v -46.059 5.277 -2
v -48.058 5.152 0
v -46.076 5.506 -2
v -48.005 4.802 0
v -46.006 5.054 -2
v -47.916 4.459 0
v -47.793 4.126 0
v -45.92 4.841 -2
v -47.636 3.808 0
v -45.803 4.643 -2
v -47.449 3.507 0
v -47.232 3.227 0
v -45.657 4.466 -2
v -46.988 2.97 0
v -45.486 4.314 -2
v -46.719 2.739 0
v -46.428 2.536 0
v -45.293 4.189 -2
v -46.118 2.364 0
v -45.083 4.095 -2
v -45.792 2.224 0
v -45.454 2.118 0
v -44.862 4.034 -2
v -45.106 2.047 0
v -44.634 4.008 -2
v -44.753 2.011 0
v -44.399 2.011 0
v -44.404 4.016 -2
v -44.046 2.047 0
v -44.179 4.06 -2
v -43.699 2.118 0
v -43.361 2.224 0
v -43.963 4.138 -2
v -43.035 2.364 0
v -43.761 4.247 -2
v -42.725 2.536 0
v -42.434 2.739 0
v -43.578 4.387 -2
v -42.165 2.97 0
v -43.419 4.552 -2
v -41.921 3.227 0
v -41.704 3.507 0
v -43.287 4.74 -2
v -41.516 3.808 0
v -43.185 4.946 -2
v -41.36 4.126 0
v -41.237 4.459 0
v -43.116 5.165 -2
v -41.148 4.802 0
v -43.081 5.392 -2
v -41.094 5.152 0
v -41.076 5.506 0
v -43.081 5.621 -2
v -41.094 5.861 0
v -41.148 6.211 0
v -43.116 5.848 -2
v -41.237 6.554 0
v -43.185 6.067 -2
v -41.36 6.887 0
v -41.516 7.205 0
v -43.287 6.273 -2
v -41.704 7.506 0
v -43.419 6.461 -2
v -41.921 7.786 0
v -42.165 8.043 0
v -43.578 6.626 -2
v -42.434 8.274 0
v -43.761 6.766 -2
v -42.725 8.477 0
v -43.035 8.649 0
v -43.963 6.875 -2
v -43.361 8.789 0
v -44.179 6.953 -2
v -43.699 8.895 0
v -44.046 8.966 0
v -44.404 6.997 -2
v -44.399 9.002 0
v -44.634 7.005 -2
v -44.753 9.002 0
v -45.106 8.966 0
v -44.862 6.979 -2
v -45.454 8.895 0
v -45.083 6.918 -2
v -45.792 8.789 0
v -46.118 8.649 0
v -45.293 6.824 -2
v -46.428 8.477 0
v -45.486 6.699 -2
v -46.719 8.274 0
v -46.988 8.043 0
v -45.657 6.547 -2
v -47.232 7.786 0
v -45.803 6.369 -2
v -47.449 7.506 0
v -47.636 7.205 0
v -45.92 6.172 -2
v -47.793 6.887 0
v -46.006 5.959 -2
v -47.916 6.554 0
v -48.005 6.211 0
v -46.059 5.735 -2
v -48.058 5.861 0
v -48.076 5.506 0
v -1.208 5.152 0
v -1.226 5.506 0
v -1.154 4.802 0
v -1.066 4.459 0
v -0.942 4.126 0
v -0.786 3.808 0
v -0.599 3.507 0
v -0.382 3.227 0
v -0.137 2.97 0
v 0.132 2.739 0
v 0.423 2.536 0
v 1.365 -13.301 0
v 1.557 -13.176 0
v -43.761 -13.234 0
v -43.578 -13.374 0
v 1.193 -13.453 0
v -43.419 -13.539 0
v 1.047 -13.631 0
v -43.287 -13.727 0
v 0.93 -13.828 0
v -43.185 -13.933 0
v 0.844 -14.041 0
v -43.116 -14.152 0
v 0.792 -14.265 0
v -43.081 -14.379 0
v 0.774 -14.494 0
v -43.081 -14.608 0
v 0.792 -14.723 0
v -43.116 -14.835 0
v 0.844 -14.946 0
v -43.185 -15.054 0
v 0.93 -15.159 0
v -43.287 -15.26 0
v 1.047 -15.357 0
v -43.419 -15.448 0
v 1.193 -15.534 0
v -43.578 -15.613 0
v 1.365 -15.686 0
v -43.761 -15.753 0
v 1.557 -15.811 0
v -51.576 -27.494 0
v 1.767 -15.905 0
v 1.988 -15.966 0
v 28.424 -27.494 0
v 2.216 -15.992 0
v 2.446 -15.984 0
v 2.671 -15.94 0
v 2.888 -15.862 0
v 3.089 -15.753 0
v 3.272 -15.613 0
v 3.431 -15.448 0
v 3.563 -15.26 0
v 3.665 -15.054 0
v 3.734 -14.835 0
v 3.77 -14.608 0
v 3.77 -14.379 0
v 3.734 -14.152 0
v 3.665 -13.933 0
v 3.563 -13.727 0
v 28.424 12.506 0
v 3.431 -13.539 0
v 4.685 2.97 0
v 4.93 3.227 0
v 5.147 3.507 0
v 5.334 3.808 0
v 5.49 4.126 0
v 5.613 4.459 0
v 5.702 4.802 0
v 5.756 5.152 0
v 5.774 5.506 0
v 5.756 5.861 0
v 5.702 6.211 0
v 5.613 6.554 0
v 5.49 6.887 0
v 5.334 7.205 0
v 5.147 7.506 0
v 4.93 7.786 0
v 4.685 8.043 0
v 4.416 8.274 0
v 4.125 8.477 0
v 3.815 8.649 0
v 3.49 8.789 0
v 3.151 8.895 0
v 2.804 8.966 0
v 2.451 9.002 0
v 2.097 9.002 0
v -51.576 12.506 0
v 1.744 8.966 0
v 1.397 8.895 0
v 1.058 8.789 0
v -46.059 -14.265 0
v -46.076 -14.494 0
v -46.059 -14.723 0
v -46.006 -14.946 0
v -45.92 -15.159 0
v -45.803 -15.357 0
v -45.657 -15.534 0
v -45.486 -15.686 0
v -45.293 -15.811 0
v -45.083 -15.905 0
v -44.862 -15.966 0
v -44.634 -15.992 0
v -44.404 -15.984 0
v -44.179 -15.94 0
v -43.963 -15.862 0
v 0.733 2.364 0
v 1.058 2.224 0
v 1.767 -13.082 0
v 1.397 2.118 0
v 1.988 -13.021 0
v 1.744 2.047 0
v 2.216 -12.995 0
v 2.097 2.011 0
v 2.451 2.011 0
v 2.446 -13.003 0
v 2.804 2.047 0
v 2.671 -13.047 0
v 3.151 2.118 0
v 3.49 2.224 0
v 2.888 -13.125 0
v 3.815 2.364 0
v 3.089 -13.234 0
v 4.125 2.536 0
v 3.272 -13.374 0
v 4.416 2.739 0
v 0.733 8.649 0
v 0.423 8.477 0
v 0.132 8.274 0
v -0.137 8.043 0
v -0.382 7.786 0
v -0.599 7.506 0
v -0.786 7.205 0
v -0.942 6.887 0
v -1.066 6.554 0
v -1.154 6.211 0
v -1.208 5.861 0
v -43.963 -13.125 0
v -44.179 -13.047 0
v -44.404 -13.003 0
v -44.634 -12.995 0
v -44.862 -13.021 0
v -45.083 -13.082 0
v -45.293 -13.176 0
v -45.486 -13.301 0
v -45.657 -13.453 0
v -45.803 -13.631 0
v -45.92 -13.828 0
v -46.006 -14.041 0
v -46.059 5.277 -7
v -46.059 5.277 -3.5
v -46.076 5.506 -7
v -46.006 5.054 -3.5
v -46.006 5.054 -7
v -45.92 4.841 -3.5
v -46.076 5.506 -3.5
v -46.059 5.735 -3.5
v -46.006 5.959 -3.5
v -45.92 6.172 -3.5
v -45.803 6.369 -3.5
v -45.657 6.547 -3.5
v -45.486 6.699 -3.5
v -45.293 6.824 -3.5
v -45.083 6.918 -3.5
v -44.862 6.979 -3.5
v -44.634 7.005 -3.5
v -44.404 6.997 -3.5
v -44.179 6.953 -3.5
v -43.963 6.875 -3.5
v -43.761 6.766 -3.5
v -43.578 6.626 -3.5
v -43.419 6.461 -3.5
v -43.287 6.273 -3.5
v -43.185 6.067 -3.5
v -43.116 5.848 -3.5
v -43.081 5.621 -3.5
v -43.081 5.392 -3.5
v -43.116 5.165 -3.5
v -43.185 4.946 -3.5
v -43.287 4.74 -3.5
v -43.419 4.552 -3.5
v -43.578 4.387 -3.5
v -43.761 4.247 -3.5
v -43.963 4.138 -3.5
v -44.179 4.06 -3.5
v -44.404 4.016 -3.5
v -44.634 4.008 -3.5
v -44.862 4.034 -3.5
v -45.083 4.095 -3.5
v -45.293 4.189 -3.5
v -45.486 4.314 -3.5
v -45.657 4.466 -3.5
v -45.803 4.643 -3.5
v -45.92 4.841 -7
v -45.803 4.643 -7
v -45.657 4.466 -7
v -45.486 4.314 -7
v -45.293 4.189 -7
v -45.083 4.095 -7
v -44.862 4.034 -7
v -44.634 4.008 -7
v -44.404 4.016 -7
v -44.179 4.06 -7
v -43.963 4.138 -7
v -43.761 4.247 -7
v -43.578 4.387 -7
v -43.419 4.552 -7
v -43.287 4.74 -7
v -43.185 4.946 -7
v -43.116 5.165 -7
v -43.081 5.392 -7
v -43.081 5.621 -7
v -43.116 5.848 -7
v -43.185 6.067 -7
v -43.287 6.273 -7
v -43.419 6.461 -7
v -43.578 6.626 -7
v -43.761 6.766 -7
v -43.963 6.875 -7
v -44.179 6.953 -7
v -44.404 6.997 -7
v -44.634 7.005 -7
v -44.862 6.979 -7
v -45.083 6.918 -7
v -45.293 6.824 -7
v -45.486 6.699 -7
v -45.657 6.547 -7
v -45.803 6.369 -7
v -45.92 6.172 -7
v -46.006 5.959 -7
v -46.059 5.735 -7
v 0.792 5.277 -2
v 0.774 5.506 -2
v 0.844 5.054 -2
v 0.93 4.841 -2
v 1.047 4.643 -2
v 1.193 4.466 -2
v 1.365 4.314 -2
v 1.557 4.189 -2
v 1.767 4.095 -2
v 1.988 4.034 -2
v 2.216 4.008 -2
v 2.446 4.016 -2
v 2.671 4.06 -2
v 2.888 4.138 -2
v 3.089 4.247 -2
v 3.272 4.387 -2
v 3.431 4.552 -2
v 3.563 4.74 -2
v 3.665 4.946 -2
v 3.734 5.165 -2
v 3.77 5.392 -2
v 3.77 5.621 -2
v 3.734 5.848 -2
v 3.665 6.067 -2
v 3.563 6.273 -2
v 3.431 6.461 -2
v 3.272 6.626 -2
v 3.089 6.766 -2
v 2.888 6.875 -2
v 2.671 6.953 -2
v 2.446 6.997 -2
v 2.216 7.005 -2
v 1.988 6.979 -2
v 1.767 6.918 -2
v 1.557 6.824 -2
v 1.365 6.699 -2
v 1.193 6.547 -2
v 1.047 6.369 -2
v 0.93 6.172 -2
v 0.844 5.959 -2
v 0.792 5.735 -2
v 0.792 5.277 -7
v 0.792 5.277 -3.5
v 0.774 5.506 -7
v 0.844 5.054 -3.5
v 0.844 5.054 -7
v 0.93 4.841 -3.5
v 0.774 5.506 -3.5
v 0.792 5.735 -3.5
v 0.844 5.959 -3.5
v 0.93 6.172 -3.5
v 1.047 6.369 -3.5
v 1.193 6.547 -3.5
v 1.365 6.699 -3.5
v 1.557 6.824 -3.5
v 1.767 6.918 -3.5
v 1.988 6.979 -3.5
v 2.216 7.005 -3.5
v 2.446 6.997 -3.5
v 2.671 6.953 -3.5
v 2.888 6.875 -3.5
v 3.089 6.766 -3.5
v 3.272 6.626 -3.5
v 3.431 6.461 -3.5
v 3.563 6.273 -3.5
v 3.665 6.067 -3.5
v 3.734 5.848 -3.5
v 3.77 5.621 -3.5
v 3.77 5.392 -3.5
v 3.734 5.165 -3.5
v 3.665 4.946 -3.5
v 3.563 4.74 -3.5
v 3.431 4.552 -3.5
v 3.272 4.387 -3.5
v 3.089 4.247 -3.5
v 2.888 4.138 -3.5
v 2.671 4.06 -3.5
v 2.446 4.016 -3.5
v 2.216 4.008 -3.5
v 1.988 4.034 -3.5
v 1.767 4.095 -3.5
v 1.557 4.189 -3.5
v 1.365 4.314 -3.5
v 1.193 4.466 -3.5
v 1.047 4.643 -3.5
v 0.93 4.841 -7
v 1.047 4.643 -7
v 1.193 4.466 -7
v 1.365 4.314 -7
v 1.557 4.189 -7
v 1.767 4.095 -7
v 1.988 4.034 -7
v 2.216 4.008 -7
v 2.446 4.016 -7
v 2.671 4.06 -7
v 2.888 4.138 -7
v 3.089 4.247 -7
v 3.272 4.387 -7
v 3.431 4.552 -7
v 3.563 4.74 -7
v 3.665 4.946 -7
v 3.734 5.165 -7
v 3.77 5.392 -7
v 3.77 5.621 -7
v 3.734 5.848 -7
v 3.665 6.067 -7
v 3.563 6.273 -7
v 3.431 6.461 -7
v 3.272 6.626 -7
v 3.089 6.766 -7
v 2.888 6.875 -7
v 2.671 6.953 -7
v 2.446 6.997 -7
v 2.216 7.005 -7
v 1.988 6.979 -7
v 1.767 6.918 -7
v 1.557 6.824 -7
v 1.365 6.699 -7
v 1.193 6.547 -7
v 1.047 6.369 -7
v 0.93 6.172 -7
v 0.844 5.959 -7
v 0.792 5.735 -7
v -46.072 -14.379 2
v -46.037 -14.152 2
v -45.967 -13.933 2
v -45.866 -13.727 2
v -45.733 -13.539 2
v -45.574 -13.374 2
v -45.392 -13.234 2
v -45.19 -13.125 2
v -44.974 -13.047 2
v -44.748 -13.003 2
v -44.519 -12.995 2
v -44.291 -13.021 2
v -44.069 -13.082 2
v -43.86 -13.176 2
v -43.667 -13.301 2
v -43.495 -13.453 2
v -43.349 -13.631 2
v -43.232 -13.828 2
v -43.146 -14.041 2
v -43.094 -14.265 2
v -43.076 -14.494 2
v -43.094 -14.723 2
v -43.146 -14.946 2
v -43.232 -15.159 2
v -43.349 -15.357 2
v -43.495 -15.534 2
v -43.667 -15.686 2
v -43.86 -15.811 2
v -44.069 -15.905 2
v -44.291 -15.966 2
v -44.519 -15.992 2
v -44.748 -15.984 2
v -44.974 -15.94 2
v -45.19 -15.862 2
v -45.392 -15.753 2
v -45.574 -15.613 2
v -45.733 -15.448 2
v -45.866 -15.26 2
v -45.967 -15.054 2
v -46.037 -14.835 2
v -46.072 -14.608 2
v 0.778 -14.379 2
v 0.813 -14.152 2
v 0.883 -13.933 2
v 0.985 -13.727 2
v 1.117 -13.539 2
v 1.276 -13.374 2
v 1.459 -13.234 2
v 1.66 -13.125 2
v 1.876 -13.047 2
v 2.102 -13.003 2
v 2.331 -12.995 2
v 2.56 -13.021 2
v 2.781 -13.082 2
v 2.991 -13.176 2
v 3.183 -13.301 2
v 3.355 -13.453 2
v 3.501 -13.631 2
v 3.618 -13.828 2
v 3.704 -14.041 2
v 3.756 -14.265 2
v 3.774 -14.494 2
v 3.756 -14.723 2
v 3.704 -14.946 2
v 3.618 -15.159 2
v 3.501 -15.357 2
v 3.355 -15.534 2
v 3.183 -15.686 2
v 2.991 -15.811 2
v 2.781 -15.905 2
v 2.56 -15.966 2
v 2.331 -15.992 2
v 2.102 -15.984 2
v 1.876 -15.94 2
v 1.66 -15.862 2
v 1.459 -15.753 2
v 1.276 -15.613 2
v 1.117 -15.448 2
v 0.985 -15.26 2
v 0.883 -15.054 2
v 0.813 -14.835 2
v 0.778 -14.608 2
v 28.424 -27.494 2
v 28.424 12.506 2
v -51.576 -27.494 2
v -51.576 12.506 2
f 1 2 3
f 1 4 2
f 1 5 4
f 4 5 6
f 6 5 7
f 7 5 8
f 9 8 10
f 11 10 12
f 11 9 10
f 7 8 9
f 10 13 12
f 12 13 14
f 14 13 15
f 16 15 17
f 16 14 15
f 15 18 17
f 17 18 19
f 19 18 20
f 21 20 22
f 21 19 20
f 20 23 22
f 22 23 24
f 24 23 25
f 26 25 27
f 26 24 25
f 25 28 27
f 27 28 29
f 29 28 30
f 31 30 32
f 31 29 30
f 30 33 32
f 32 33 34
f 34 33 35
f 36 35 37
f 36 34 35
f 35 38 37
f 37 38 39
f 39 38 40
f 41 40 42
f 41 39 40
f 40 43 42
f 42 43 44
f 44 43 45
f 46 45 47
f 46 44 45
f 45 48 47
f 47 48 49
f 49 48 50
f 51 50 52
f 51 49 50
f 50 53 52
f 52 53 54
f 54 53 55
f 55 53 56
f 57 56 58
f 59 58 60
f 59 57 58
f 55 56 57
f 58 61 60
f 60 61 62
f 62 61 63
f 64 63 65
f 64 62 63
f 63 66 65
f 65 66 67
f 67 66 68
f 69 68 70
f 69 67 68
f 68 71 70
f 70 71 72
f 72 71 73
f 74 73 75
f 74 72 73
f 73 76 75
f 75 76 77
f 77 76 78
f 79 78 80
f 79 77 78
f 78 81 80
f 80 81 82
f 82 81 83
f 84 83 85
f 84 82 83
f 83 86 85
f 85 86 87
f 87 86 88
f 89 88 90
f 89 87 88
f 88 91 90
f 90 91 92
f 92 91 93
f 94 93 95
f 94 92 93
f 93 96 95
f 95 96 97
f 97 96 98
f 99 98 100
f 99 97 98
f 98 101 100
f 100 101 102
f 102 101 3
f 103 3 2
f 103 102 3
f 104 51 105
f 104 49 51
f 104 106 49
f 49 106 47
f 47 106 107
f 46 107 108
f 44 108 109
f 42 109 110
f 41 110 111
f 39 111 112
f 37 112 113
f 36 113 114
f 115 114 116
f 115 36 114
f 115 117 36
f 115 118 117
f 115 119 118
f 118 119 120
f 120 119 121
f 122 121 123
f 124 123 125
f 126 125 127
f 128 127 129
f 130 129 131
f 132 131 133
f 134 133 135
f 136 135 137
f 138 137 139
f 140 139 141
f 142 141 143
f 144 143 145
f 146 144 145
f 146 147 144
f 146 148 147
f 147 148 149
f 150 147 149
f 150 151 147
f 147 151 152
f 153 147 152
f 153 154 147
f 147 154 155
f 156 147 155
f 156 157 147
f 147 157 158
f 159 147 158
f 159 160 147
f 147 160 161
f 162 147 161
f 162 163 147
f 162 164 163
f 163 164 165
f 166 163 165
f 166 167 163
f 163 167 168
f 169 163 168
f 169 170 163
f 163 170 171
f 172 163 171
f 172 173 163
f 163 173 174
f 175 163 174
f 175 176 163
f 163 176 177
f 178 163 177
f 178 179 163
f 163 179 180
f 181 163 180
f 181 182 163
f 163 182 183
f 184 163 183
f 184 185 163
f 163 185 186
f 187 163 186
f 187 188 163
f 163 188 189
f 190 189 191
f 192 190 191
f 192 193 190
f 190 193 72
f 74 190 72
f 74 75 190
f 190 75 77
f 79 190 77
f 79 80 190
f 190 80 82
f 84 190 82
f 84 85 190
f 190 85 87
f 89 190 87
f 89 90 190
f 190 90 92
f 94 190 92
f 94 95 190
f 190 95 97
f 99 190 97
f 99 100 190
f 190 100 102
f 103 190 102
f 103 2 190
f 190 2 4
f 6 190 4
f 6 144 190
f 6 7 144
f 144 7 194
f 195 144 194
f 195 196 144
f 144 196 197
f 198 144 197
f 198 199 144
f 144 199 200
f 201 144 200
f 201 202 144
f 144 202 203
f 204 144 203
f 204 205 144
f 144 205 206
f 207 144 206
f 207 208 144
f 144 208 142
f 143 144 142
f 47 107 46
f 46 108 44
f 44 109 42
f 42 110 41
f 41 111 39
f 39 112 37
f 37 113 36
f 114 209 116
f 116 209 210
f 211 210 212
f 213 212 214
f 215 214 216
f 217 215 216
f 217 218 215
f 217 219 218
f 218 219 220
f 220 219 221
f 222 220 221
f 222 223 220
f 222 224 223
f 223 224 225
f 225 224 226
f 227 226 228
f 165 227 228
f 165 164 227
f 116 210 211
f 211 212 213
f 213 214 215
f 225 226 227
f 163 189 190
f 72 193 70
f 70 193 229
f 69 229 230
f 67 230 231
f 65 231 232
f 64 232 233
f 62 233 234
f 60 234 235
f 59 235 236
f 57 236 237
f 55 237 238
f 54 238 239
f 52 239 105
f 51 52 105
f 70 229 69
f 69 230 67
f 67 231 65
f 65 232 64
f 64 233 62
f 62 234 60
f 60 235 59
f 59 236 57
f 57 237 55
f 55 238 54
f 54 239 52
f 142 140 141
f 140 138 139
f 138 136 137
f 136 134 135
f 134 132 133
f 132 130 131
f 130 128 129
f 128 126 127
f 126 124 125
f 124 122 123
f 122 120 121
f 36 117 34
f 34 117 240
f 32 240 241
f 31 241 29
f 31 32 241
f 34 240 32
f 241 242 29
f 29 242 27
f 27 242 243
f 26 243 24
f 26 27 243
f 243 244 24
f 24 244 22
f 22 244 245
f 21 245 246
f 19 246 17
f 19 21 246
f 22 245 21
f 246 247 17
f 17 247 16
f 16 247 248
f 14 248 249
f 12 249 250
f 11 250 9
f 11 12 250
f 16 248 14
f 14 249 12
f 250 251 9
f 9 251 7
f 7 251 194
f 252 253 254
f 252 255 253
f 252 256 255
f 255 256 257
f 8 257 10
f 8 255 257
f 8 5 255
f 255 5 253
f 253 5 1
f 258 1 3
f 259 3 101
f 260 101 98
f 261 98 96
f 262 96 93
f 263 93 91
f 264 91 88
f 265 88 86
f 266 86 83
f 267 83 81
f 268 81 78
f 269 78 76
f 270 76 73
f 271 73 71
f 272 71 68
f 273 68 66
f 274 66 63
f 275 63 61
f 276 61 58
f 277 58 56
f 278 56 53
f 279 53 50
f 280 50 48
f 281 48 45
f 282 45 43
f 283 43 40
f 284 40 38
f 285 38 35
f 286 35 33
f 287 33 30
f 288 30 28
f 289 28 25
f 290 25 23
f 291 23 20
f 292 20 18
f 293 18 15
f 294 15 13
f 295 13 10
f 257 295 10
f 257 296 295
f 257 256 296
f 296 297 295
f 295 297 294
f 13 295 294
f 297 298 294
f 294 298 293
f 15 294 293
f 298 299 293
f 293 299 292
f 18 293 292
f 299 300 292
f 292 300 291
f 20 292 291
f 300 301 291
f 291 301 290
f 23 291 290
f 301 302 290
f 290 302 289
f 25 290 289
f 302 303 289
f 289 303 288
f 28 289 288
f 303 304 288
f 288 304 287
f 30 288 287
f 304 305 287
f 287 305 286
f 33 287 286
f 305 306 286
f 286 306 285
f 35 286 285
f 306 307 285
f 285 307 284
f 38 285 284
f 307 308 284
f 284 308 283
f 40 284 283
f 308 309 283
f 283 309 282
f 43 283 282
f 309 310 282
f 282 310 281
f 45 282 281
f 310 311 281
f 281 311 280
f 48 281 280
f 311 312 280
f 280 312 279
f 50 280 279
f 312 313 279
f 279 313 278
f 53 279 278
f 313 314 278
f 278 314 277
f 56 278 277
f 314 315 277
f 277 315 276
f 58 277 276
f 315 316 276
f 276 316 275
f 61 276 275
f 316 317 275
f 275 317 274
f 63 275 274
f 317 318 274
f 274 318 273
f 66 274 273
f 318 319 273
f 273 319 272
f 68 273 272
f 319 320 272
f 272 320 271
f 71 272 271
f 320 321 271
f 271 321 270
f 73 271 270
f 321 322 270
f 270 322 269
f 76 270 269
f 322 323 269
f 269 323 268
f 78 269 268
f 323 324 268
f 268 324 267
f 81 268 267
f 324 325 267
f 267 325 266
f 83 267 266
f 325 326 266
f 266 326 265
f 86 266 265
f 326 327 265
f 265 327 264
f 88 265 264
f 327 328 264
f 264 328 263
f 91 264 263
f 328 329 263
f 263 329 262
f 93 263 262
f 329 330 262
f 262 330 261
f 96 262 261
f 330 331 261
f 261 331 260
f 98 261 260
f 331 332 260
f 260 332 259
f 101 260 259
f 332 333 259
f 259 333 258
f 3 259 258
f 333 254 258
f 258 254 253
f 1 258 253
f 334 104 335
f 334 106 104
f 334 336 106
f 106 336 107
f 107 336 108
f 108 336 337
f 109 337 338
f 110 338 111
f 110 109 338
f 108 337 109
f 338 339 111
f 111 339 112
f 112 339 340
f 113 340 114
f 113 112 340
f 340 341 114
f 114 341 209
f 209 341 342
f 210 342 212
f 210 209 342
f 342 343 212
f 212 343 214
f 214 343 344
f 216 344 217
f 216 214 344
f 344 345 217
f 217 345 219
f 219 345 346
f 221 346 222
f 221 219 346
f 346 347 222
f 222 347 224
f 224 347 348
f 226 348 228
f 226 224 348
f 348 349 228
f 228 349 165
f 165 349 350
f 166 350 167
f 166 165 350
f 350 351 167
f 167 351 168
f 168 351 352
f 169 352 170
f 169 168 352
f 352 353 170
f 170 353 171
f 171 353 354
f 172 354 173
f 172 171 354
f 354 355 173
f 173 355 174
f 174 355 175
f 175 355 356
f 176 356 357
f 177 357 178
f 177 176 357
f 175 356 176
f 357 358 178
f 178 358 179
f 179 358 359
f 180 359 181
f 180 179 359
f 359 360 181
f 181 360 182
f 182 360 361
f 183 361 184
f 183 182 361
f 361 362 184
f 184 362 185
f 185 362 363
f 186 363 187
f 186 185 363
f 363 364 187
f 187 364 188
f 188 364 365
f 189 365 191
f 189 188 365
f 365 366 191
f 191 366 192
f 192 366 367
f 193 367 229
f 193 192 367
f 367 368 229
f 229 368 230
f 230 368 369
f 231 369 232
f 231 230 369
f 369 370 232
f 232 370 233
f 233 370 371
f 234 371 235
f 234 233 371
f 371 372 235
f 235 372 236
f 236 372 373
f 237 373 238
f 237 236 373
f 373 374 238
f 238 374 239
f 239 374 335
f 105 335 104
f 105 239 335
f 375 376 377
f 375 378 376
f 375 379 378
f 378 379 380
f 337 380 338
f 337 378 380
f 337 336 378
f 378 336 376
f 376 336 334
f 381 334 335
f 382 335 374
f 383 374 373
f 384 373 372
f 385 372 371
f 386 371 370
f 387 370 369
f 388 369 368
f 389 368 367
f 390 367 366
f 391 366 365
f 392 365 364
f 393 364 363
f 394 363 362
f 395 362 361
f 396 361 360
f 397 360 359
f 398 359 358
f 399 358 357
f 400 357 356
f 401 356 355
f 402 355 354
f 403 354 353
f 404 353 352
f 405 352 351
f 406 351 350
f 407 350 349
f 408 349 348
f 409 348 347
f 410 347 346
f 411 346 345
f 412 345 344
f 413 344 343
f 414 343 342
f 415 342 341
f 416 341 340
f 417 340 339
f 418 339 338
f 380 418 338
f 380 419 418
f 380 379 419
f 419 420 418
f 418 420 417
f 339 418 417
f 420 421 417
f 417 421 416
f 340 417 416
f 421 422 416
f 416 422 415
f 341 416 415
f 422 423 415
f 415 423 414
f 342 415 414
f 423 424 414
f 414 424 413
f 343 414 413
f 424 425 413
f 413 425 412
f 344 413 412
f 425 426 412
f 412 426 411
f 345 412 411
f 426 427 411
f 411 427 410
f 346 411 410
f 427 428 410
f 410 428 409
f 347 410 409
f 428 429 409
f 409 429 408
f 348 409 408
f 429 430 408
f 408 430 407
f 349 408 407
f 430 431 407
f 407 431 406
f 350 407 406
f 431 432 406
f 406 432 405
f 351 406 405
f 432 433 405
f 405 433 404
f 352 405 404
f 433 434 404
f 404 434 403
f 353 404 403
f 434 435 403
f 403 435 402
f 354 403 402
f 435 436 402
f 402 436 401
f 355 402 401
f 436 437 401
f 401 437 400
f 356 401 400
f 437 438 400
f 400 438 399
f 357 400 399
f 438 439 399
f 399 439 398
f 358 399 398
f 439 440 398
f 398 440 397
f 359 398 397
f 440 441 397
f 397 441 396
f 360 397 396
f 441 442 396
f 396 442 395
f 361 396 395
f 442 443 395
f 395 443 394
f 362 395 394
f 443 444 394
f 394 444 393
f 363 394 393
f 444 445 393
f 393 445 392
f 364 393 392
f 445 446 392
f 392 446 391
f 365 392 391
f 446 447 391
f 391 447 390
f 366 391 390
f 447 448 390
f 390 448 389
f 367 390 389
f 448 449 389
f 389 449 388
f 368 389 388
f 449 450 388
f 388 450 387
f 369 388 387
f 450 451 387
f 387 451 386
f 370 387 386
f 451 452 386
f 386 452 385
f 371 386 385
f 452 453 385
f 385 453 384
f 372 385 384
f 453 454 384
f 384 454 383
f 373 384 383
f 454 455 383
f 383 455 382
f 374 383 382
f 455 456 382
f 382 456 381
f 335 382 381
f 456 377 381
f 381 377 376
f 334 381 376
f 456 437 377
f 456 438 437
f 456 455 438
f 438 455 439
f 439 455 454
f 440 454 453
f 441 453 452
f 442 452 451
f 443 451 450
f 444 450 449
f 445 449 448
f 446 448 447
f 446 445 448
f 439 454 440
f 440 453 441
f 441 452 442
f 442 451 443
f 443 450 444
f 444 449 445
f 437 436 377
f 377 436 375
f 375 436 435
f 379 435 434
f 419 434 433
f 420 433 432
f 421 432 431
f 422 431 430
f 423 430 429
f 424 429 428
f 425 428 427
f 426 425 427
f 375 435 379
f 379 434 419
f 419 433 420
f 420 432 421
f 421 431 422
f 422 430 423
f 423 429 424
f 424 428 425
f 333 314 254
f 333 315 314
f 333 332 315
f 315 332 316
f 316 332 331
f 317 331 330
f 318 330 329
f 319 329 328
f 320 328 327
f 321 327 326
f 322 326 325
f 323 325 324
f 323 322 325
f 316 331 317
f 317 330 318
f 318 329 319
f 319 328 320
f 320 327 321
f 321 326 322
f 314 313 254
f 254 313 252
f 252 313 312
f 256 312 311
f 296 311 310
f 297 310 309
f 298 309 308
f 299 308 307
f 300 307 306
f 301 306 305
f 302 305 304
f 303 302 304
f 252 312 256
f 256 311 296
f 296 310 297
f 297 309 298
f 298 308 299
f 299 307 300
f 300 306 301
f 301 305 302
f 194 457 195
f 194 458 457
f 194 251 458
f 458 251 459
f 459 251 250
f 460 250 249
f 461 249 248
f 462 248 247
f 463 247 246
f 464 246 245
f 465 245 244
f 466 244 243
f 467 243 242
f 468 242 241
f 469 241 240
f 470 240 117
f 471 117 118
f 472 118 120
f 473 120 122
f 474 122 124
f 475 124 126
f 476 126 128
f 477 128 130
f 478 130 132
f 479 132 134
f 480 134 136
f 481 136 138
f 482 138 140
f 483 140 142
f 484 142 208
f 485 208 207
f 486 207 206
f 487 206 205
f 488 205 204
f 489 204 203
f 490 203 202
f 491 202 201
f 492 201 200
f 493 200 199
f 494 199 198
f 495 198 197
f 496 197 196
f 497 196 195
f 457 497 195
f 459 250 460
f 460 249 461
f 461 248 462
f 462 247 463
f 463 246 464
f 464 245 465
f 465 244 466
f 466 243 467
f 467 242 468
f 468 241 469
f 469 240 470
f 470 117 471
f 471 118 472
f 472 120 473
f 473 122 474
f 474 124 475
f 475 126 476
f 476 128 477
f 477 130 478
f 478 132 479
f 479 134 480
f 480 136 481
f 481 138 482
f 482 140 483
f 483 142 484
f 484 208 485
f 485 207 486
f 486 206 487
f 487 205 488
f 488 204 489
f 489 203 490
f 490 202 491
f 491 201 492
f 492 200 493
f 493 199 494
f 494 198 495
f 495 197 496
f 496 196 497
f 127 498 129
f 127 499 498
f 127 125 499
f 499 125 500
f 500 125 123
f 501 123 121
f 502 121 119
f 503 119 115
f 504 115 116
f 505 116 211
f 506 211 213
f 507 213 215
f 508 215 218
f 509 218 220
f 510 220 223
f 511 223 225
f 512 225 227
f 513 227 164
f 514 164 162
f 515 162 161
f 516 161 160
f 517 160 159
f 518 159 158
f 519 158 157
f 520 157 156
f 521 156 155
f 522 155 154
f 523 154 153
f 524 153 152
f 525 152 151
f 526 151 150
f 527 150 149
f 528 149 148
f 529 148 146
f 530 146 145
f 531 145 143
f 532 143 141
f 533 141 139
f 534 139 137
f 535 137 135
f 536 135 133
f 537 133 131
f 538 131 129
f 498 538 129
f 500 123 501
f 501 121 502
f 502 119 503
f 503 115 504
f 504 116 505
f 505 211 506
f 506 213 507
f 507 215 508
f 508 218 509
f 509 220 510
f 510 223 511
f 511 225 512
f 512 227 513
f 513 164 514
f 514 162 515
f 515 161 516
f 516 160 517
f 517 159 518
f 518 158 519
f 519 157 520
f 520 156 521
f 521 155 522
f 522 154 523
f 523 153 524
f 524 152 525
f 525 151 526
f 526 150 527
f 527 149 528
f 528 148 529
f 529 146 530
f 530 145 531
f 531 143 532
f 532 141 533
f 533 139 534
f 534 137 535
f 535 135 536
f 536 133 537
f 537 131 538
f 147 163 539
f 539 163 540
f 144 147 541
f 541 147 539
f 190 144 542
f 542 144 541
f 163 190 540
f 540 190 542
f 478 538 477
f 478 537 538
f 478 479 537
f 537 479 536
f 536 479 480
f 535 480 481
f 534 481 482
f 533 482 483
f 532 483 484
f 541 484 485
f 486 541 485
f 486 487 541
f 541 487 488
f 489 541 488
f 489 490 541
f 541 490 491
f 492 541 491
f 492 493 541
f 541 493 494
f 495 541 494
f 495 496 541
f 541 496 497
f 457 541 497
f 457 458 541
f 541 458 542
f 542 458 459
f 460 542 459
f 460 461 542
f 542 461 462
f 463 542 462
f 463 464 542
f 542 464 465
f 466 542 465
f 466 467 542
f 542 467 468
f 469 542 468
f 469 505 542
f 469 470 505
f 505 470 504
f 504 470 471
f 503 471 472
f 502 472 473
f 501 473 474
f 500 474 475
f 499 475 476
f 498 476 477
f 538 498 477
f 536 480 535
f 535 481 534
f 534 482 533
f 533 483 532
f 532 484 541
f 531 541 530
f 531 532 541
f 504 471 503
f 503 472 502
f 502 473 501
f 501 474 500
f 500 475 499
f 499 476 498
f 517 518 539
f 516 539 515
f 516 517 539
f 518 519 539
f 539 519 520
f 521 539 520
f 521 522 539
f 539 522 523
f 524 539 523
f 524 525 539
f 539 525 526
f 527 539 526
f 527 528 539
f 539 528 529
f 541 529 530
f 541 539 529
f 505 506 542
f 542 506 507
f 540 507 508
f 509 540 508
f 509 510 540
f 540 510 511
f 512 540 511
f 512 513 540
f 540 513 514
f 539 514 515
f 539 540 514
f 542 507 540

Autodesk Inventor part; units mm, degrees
ref_plane "YZ Plane" through (0, 0, 0) normal (1, 0, 0) x (0, 1, 0)
ref_plane "XZ Plane" through (0, 0, 0) normal (0, 1, 0) x (-1, 0, 0)
ref_plane "XY Plane" through (0, 0, 0) normal (0, 0, 1) x (1, 0, 0)
sketch "Sketch1" plane through (0, 0, 0) normal (0, 0, 1) x (1, 0, 0)
  line L0 (-51.5762, 12.5065) -> (28.4238, 12.5065)
  line L1 (28.4238, 12.5065) -> (28.4238, -27.4935)
  line L2 (28.4238, -27.4935) -> (-51.5762, -27.4935)
  line L3 (-51.5762, -27.4935) -> (-51.5762, 12.5065)
  point P0 (0, 0)
  dimension "d0" = 80
  dimension "d1" = 40
extrude "Extrusion1" add sketch "Sketch1" along normal blind 2
sketch "Sketch2" plane through (0, 0, 2) normal (0, 0, 1) x (1, 0, 0)
  line L0 (-51.5762, 12.5065) -> (-51.5762, -27.4935) projected
  line L1 (-51.5762, -27.4935) -> (28.4238, -27.4935) projected
  point P0 (0, 0)
  point P1 (-44.5762, -14.4935)
  point P2 (2.2739, -14.4935)
  dimension "d4" = 46.8502
  dimension "d5" = 7
  dimension "d6" = 13
  dimension "d7" = 13
hole "Hole1" at (-44.5762, -14.4935, 2) at (2.2739, -14.4935, 2) direction (0, 0, -1) diameter 3 depth 8 tip angle 118
sketch "Sketch3" plane through (0, 0, 2) normal (0, 0, 1) x (1, 0, 0)
  point P0 (0, 0)
sketch "Sketch4" plane through (0, 0, 0) normal (0, 0, -1) x (-1, 0, 0)
  circle A0 centre (-2.2739, -14.4935) radius 1.5 projected
  circle A1 centre (44.5762, -14.4935) radius 1.5 projected
  circle A2 centre (-2.2739, 5.5065) radius 1.5
  circle A3 centre (44.5762, 5.5065) radius 1.5
  point P0 (0, 0)
  dimension "d15" = 20
  dimension "d16" = 20
  dimension "d17" = 3
  dimension "d18" = 3
extrude "Extrusion2" add sketch "Sketch4" along normal blind 7 contours A2 | A3
chamfer "Chamfer1" distance 2 angle 45 2 edges at (3.7739, 5.5065, 0) (-43.0762, 5.5065, 0)
properties part number "Power circuit support surface"
